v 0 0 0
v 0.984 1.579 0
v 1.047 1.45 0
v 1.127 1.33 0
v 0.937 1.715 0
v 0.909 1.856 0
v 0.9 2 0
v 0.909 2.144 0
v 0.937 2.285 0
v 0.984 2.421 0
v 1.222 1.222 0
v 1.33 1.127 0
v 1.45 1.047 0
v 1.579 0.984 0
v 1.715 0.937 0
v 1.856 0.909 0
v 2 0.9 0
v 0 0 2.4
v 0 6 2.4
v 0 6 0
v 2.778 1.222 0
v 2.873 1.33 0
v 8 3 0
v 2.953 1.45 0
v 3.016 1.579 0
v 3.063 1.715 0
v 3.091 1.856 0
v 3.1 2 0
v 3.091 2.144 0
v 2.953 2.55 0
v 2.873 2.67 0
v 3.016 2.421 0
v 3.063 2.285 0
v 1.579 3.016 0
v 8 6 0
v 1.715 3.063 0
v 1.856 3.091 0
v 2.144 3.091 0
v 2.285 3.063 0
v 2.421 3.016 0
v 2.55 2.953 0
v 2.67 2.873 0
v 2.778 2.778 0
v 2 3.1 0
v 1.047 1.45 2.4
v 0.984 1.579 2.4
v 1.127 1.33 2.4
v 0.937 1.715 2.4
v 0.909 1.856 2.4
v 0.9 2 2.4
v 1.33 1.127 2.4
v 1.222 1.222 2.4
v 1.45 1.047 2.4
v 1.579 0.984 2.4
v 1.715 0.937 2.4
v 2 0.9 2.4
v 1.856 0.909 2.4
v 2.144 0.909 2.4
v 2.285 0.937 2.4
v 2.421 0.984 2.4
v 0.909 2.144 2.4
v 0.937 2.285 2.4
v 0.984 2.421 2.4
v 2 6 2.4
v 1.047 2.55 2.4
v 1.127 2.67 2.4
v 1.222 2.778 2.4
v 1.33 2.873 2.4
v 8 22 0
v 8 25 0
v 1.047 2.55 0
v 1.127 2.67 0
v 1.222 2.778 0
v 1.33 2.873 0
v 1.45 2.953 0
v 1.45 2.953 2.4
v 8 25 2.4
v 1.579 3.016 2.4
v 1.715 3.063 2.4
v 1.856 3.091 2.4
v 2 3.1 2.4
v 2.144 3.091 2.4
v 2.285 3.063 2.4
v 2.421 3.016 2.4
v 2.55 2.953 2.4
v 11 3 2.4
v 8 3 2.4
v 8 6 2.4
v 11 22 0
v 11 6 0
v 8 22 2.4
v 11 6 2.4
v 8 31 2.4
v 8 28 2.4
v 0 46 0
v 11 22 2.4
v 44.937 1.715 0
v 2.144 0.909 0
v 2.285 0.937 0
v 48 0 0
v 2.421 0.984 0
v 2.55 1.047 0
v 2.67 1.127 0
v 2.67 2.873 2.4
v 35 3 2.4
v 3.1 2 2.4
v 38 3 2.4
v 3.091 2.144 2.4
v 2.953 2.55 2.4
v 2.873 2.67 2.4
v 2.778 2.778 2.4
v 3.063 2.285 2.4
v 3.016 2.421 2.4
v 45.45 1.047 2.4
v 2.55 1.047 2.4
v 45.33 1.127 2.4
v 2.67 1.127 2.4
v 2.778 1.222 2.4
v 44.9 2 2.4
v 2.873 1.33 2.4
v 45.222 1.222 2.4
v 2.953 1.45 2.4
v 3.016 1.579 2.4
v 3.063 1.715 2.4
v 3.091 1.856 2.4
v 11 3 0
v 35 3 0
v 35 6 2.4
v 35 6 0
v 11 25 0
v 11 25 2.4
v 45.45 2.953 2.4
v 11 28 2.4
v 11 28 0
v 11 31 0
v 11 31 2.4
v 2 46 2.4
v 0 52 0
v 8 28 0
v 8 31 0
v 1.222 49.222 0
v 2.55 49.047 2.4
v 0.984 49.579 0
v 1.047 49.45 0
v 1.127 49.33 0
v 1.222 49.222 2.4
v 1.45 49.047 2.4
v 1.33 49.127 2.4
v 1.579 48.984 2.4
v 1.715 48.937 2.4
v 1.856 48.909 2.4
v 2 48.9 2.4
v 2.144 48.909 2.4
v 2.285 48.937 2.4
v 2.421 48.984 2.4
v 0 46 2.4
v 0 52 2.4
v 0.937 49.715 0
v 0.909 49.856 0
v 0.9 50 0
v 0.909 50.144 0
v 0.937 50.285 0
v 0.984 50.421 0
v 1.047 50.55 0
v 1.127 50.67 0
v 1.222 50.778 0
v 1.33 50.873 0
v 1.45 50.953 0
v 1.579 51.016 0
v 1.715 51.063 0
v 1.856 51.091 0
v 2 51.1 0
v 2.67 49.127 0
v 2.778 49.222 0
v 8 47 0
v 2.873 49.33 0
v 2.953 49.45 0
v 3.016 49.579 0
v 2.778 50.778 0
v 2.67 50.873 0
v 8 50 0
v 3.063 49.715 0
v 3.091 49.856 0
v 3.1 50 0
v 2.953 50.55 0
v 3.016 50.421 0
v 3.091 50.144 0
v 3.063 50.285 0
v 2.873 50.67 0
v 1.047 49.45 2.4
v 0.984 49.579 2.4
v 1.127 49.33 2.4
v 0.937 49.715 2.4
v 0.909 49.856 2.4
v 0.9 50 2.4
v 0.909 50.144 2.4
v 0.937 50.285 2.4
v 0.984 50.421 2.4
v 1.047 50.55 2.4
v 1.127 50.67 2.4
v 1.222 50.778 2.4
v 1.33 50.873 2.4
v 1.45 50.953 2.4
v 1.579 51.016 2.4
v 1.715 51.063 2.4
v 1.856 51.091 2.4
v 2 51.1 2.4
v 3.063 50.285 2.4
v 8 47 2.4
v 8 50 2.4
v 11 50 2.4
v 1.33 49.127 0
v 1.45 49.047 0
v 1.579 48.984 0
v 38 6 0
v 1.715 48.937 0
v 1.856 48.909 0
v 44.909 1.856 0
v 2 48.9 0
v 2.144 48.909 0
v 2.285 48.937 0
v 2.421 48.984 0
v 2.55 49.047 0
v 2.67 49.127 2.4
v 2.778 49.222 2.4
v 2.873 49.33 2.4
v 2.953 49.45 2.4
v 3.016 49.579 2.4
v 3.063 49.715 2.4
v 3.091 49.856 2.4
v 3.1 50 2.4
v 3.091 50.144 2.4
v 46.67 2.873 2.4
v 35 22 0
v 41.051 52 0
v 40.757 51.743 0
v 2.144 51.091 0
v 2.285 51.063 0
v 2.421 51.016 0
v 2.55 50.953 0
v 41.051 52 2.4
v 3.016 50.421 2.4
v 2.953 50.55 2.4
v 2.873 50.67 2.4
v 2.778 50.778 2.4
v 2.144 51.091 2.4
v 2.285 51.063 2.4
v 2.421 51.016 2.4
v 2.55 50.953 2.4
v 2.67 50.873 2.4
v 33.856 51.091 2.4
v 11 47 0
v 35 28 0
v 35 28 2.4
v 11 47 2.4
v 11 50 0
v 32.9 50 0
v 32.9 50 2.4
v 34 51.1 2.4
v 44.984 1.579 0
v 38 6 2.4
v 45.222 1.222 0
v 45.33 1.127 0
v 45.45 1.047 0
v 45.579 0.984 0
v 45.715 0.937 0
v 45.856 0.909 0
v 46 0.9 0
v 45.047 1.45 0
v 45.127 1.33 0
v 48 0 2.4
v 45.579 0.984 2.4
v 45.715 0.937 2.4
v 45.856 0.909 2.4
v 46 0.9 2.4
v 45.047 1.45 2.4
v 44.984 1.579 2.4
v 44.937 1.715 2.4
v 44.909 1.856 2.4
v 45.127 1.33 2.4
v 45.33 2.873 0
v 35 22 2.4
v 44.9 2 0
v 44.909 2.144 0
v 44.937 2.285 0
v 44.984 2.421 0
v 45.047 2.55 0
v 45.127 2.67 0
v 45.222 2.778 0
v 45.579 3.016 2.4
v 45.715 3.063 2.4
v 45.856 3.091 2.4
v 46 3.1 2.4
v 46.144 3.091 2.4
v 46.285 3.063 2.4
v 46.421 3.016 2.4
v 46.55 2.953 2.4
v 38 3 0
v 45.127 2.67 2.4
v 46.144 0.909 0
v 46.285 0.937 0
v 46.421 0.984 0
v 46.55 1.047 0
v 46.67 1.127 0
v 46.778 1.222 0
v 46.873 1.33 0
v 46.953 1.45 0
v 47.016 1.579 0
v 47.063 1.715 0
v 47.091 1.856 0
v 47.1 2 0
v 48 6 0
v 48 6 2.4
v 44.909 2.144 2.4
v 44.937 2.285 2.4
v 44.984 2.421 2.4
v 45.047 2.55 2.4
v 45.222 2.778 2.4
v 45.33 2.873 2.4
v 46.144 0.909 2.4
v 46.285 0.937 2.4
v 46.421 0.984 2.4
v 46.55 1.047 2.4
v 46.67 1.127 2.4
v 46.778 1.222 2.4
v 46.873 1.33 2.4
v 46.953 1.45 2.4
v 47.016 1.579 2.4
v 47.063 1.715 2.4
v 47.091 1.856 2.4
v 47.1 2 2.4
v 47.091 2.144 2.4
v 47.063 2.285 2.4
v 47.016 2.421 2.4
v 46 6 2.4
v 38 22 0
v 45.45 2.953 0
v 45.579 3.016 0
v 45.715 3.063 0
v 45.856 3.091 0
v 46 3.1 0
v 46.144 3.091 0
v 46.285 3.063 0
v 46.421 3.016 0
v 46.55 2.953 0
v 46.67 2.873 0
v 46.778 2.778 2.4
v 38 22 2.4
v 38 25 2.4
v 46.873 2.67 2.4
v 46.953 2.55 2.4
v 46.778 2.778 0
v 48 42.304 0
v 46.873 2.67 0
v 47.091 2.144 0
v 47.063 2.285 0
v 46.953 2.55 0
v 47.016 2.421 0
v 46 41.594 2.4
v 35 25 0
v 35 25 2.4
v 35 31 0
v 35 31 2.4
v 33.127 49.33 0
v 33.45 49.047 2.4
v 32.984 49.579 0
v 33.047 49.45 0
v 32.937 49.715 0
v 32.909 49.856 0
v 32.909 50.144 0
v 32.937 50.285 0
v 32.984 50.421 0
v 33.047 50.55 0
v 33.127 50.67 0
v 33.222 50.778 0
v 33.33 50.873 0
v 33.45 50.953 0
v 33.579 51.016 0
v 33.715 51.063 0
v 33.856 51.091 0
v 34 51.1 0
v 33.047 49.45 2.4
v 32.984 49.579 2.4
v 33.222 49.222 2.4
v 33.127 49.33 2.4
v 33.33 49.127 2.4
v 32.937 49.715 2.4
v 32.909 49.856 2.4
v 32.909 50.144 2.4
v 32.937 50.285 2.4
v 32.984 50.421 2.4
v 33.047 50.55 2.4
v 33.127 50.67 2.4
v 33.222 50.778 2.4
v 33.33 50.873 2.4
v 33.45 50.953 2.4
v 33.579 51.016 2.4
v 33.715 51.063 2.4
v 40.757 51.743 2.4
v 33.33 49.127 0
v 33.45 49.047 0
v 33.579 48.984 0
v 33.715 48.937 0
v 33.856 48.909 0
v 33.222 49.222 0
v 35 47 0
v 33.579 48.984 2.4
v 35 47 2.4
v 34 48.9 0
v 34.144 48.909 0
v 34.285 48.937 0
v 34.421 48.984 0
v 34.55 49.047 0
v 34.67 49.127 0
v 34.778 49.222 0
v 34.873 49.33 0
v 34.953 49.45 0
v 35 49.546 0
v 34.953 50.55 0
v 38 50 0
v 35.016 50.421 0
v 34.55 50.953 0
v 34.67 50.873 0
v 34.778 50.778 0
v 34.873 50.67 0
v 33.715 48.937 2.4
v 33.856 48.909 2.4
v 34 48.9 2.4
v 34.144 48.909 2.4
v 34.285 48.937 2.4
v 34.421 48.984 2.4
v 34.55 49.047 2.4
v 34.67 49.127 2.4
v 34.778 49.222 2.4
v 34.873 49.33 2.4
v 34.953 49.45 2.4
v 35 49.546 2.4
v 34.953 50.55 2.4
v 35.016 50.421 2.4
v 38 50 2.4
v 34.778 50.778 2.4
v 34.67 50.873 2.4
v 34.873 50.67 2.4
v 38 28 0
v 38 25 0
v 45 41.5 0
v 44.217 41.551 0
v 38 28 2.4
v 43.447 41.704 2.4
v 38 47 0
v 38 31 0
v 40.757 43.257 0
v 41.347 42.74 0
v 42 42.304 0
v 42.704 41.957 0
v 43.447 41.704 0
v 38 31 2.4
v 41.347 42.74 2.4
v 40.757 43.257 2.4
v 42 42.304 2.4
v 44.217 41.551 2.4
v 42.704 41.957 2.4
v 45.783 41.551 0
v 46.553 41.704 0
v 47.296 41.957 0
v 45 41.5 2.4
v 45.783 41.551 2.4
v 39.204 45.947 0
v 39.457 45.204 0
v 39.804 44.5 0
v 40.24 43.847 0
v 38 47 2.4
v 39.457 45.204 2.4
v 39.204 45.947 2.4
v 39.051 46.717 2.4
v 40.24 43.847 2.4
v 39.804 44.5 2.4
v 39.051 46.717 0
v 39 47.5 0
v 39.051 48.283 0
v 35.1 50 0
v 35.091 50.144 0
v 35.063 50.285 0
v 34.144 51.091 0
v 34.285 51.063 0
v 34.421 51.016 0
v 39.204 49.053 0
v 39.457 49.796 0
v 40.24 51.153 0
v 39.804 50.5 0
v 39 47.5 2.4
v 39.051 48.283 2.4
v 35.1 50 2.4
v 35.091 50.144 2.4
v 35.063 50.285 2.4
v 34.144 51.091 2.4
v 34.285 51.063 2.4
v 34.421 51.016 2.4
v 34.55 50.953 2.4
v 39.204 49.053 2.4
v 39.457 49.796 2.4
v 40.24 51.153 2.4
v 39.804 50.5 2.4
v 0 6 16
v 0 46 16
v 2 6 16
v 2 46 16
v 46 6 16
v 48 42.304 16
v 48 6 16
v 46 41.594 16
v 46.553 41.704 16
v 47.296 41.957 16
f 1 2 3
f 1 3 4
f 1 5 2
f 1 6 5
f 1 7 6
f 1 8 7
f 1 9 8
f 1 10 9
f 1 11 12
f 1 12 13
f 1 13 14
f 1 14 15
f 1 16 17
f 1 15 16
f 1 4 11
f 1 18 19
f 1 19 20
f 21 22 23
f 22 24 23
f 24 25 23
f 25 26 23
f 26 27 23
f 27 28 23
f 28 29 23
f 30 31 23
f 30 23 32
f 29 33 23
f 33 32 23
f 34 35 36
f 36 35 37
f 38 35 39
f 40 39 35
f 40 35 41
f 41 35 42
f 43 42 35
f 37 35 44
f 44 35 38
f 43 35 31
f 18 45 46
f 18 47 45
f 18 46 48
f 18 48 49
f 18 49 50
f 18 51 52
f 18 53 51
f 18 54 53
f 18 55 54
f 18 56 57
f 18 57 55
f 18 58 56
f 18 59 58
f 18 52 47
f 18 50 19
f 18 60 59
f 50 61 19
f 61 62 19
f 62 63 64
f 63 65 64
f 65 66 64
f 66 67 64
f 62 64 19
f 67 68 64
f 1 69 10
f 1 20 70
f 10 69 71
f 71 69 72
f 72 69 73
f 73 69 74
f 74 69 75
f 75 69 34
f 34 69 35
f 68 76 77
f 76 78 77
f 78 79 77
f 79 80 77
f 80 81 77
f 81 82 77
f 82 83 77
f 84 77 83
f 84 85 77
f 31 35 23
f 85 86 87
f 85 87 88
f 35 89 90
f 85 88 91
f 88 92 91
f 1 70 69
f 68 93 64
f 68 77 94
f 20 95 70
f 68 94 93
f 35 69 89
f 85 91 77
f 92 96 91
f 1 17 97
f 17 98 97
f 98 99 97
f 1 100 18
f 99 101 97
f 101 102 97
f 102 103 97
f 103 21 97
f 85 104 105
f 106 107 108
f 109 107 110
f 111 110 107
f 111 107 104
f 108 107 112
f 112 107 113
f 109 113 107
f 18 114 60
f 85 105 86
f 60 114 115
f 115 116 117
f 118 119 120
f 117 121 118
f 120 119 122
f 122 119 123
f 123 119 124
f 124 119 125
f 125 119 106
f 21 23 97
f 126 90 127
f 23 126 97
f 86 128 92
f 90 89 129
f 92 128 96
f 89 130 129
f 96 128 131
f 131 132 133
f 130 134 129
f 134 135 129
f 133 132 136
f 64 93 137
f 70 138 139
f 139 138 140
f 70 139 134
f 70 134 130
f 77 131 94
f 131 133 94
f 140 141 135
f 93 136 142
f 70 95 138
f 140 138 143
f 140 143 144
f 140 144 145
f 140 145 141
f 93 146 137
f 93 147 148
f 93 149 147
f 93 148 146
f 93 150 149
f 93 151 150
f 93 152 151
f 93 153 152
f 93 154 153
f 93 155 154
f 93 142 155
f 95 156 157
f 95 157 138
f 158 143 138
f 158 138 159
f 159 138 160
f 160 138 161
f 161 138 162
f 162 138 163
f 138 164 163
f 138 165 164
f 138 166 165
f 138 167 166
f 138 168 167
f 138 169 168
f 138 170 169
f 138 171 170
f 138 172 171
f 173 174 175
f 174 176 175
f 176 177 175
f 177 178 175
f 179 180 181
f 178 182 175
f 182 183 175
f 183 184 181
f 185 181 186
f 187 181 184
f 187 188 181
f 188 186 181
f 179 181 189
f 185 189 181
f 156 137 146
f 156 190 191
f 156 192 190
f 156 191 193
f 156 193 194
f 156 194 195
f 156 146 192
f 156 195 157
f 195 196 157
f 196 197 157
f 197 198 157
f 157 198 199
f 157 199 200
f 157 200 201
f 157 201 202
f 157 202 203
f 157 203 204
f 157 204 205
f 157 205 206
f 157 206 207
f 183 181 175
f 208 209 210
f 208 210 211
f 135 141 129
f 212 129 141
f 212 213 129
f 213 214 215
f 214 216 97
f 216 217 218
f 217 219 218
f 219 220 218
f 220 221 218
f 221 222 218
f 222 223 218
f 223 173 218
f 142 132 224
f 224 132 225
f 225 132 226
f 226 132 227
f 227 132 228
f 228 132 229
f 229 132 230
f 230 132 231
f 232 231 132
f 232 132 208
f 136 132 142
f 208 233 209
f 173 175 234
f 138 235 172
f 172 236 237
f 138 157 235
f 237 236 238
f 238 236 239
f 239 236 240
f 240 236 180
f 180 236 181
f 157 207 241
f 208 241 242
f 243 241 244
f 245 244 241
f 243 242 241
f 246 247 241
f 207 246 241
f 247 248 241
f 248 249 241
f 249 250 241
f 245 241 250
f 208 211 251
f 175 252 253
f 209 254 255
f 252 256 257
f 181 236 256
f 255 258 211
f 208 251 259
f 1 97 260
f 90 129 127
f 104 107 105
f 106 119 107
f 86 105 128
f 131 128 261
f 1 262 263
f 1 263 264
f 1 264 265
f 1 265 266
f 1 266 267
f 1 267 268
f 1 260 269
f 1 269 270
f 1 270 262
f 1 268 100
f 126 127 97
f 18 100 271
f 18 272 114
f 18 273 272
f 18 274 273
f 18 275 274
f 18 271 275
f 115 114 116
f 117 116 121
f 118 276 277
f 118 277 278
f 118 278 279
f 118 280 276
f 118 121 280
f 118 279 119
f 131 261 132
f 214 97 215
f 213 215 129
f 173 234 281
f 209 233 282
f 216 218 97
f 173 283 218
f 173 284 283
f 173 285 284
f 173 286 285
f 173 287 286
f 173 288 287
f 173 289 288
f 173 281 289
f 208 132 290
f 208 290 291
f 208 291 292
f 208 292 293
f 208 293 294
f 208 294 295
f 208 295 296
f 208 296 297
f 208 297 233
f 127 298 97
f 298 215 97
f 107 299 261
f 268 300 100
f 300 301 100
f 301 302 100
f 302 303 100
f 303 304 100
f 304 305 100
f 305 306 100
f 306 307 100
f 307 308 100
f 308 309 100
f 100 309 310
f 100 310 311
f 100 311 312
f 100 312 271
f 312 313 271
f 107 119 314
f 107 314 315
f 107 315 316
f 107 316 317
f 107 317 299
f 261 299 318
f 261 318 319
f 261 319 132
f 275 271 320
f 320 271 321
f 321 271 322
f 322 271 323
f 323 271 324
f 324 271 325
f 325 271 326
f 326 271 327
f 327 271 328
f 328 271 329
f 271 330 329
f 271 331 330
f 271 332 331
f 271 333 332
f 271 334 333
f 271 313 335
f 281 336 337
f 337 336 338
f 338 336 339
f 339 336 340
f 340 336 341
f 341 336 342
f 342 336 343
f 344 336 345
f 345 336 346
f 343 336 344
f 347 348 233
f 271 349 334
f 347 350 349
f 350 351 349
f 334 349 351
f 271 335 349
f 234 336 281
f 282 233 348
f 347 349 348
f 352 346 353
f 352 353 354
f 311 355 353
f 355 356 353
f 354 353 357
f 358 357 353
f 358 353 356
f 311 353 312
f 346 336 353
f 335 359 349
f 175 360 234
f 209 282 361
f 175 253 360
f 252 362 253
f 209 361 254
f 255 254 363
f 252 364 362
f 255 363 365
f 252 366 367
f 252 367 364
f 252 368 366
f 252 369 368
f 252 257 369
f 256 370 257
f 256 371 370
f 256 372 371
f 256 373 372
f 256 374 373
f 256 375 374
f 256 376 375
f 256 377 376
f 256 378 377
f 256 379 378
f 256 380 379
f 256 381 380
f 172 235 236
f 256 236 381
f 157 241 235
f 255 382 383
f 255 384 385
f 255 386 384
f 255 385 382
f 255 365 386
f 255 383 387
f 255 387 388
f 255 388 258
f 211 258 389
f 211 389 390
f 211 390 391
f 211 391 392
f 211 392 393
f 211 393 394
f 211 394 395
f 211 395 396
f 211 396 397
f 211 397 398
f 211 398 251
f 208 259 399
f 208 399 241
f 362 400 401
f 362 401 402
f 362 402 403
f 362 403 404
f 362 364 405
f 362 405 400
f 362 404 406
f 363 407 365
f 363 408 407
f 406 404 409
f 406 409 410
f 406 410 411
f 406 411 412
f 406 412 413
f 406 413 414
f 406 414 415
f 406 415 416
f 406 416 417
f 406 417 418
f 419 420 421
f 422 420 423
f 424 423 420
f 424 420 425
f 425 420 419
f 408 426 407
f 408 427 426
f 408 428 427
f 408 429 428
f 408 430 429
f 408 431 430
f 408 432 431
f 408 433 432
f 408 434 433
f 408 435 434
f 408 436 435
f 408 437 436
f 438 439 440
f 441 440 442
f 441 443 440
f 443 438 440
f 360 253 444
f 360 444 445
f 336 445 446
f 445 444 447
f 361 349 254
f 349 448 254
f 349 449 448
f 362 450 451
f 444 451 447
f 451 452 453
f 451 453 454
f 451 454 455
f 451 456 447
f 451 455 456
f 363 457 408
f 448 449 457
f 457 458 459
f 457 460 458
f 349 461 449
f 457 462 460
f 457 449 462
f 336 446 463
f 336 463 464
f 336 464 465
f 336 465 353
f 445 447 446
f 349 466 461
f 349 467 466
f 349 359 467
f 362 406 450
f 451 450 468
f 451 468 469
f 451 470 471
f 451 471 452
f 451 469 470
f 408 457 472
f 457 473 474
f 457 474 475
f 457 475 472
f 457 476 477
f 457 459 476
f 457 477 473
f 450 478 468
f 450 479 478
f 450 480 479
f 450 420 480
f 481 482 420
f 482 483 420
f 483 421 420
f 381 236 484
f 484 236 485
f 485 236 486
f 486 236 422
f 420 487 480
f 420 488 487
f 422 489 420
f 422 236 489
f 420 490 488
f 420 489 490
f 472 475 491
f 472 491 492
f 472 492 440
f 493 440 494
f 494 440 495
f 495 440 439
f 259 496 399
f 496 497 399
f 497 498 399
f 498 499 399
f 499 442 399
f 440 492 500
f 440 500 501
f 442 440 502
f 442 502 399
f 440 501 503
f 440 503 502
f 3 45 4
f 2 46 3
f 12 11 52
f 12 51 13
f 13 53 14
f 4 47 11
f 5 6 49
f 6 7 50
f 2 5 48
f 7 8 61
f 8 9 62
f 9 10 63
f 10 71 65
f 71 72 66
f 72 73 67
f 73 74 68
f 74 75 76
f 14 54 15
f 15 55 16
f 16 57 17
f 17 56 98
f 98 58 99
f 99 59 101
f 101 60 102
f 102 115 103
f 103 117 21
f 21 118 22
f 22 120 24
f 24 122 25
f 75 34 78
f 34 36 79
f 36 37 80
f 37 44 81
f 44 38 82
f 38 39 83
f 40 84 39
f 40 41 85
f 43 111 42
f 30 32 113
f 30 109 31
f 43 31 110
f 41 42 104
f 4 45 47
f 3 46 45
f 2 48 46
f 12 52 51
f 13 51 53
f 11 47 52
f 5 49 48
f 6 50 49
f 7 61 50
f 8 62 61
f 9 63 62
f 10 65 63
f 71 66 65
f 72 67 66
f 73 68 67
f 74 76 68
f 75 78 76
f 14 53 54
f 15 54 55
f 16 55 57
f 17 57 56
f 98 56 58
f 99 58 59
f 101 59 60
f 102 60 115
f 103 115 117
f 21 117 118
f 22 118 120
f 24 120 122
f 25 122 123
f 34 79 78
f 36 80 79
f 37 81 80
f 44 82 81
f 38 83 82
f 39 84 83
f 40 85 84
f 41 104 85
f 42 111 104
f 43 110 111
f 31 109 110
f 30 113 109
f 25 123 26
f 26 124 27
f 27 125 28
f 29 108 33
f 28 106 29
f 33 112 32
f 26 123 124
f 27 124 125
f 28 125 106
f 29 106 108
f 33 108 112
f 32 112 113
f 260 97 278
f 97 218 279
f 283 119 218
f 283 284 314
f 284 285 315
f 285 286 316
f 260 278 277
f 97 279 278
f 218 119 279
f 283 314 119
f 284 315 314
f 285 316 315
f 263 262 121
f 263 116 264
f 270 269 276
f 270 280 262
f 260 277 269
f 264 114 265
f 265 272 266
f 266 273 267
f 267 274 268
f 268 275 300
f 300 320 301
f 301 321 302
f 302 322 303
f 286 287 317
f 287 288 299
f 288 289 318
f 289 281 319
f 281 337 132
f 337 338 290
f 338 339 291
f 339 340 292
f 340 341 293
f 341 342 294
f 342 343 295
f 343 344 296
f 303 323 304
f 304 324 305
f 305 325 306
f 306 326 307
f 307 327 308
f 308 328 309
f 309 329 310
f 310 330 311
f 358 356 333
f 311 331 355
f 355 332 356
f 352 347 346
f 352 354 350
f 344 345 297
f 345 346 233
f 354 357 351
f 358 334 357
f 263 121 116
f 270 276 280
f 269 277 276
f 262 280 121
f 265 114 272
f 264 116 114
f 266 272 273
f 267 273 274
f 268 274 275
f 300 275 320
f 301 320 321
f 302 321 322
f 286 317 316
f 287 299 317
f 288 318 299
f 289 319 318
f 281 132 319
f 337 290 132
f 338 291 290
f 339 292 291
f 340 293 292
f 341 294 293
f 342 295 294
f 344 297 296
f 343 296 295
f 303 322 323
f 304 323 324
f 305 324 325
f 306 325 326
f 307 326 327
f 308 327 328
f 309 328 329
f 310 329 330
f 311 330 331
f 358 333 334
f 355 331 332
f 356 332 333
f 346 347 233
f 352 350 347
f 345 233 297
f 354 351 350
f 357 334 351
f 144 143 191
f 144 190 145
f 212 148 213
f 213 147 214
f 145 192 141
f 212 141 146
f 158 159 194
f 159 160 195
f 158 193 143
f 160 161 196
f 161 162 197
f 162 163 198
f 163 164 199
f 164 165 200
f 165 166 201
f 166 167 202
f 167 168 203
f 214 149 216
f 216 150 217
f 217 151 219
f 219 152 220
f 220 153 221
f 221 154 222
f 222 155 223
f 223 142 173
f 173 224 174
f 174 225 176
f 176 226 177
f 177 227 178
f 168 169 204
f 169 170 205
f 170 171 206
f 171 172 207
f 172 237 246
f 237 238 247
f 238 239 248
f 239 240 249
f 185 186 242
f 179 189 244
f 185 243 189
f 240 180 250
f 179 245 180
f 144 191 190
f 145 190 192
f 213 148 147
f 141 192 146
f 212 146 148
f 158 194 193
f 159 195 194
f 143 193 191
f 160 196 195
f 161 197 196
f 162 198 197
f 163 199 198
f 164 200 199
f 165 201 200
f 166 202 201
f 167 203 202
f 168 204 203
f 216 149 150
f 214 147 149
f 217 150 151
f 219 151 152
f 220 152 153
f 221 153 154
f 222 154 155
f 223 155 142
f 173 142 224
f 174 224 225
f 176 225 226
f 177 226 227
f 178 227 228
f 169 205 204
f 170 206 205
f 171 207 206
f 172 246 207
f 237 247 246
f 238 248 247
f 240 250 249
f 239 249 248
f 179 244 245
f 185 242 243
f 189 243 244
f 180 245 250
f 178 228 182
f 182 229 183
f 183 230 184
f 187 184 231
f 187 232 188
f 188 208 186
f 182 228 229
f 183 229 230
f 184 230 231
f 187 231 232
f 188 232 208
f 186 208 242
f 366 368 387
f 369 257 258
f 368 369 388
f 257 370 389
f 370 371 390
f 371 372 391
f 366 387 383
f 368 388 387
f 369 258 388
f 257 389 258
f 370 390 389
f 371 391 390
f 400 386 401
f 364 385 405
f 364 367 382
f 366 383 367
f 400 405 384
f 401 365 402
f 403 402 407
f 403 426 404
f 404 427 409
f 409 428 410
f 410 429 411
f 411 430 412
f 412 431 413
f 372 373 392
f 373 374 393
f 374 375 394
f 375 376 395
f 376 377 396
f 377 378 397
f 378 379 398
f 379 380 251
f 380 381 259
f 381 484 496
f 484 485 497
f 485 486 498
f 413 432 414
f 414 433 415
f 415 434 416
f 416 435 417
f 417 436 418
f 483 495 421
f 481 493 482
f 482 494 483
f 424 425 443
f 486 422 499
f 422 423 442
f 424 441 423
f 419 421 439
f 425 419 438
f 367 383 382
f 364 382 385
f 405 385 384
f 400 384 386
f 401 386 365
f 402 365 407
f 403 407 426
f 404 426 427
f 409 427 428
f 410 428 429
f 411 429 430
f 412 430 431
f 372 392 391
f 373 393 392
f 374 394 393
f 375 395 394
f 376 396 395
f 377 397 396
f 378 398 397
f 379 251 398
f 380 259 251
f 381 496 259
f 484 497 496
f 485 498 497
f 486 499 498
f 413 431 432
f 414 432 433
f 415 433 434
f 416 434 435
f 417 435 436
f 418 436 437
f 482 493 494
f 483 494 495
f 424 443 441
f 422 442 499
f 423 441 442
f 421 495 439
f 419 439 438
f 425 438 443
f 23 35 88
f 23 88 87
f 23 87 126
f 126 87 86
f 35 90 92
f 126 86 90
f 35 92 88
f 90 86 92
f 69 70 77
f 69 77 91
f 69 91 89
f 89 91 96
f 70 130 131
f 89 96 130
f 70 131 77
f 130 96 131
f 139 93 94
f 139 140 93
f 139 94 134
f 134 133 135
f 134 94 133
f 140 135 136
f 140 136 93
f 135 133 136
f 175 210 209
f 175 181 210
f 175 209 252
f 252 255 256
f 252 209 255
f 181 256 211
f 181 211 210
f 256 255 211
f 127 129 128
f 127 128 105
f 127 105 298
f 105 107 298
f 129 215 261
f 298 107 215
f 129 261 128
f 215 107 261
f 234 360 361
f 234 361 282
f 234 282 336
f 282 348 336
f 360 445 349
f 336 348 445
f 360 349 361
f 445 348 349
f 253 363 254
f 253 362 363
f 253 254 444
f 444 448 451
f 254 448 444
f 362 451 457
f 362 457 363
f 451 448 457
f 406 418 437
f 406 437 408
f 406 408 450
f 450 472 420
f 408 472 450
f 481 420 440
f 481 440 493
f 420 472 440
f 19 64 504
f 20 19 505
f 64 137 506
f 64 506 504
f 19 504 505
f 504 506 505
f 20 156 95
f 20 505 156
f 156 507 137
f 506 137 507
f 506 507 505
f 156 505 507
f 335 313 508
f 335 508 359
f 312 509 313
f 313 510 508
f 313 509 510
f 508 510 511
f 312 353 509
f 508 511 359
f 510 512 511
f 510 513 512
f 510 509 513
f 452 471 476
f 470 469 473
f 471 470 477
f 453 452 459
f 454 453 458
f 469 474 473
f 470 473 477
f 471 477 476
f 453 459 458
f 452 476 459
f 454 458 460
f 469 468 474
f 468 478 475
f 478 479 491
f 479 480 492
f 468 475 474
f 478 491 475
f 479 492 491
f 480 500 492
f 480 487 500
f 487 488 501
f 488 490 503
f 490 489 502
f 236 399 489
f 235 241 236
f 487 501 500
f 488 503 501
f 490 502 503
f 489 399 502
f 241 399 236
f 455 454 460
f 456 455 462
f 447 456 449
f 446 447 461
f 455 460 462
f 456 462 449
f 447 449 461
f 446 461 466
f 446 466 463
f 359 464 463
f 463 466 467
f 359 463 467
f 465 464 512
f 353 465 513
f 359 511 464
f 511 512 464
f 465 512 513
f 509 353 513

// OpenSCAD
// Generated FH1 print part; mm. See parameters.json and physical-fit limits.
difference() {
union() {
difference() {
difference() {
difference() {
difference() {
difference() {
difference() {
difference() {
difference() {
difference() {
difference() {
difference() {
difference() {
cube([48,52,2.4]);
translate([2, 2, -0.1]) { cylinder(d=2.2,h=2.6,$fn=48); }
}
translate([46, 2, -0.1]) { cylinder(d=2.2,h=2.6,$fn=48); }
}
translate([2, 50, -0.1]) { cylinder(d=2.2,h=2.6,$fn=48); }
}
translate([34, 50, -0.1]) { cylinder(d=2.2,h=2.6,$fn=48); }
}
translate([8, 3, -0.1]) { cube([3,3,2.6]); }
}
translate([8, 22, -0.1]) { cube([3,3,2.6]); }
}
translate([8, 28, -0.1]) { cube([3,3,2.6]); }
}
translate([8, 47, -0.1]) { cube([3,3,2.6]); }
}
translate([35, 3, -0.1]) { cube([3,3,2.6]); }
}
translate([35, 22, -0.1]) { cube([3,3,2.6]); }
}
translate([35, 28, -0.1]) { cube([3,3,2.6]); }
}
translate([35, 47, -0.1]) { cube([3,3,2.6]); }
}
translate([0, 6, 0]) { cube([2,40,16]); }
translate([46, 6, 0]) { cube([2,40,16]); }
}
translate([45, 47.5, -0.1]) { cylinder(d=12,h=25,$fn=48); }
}
